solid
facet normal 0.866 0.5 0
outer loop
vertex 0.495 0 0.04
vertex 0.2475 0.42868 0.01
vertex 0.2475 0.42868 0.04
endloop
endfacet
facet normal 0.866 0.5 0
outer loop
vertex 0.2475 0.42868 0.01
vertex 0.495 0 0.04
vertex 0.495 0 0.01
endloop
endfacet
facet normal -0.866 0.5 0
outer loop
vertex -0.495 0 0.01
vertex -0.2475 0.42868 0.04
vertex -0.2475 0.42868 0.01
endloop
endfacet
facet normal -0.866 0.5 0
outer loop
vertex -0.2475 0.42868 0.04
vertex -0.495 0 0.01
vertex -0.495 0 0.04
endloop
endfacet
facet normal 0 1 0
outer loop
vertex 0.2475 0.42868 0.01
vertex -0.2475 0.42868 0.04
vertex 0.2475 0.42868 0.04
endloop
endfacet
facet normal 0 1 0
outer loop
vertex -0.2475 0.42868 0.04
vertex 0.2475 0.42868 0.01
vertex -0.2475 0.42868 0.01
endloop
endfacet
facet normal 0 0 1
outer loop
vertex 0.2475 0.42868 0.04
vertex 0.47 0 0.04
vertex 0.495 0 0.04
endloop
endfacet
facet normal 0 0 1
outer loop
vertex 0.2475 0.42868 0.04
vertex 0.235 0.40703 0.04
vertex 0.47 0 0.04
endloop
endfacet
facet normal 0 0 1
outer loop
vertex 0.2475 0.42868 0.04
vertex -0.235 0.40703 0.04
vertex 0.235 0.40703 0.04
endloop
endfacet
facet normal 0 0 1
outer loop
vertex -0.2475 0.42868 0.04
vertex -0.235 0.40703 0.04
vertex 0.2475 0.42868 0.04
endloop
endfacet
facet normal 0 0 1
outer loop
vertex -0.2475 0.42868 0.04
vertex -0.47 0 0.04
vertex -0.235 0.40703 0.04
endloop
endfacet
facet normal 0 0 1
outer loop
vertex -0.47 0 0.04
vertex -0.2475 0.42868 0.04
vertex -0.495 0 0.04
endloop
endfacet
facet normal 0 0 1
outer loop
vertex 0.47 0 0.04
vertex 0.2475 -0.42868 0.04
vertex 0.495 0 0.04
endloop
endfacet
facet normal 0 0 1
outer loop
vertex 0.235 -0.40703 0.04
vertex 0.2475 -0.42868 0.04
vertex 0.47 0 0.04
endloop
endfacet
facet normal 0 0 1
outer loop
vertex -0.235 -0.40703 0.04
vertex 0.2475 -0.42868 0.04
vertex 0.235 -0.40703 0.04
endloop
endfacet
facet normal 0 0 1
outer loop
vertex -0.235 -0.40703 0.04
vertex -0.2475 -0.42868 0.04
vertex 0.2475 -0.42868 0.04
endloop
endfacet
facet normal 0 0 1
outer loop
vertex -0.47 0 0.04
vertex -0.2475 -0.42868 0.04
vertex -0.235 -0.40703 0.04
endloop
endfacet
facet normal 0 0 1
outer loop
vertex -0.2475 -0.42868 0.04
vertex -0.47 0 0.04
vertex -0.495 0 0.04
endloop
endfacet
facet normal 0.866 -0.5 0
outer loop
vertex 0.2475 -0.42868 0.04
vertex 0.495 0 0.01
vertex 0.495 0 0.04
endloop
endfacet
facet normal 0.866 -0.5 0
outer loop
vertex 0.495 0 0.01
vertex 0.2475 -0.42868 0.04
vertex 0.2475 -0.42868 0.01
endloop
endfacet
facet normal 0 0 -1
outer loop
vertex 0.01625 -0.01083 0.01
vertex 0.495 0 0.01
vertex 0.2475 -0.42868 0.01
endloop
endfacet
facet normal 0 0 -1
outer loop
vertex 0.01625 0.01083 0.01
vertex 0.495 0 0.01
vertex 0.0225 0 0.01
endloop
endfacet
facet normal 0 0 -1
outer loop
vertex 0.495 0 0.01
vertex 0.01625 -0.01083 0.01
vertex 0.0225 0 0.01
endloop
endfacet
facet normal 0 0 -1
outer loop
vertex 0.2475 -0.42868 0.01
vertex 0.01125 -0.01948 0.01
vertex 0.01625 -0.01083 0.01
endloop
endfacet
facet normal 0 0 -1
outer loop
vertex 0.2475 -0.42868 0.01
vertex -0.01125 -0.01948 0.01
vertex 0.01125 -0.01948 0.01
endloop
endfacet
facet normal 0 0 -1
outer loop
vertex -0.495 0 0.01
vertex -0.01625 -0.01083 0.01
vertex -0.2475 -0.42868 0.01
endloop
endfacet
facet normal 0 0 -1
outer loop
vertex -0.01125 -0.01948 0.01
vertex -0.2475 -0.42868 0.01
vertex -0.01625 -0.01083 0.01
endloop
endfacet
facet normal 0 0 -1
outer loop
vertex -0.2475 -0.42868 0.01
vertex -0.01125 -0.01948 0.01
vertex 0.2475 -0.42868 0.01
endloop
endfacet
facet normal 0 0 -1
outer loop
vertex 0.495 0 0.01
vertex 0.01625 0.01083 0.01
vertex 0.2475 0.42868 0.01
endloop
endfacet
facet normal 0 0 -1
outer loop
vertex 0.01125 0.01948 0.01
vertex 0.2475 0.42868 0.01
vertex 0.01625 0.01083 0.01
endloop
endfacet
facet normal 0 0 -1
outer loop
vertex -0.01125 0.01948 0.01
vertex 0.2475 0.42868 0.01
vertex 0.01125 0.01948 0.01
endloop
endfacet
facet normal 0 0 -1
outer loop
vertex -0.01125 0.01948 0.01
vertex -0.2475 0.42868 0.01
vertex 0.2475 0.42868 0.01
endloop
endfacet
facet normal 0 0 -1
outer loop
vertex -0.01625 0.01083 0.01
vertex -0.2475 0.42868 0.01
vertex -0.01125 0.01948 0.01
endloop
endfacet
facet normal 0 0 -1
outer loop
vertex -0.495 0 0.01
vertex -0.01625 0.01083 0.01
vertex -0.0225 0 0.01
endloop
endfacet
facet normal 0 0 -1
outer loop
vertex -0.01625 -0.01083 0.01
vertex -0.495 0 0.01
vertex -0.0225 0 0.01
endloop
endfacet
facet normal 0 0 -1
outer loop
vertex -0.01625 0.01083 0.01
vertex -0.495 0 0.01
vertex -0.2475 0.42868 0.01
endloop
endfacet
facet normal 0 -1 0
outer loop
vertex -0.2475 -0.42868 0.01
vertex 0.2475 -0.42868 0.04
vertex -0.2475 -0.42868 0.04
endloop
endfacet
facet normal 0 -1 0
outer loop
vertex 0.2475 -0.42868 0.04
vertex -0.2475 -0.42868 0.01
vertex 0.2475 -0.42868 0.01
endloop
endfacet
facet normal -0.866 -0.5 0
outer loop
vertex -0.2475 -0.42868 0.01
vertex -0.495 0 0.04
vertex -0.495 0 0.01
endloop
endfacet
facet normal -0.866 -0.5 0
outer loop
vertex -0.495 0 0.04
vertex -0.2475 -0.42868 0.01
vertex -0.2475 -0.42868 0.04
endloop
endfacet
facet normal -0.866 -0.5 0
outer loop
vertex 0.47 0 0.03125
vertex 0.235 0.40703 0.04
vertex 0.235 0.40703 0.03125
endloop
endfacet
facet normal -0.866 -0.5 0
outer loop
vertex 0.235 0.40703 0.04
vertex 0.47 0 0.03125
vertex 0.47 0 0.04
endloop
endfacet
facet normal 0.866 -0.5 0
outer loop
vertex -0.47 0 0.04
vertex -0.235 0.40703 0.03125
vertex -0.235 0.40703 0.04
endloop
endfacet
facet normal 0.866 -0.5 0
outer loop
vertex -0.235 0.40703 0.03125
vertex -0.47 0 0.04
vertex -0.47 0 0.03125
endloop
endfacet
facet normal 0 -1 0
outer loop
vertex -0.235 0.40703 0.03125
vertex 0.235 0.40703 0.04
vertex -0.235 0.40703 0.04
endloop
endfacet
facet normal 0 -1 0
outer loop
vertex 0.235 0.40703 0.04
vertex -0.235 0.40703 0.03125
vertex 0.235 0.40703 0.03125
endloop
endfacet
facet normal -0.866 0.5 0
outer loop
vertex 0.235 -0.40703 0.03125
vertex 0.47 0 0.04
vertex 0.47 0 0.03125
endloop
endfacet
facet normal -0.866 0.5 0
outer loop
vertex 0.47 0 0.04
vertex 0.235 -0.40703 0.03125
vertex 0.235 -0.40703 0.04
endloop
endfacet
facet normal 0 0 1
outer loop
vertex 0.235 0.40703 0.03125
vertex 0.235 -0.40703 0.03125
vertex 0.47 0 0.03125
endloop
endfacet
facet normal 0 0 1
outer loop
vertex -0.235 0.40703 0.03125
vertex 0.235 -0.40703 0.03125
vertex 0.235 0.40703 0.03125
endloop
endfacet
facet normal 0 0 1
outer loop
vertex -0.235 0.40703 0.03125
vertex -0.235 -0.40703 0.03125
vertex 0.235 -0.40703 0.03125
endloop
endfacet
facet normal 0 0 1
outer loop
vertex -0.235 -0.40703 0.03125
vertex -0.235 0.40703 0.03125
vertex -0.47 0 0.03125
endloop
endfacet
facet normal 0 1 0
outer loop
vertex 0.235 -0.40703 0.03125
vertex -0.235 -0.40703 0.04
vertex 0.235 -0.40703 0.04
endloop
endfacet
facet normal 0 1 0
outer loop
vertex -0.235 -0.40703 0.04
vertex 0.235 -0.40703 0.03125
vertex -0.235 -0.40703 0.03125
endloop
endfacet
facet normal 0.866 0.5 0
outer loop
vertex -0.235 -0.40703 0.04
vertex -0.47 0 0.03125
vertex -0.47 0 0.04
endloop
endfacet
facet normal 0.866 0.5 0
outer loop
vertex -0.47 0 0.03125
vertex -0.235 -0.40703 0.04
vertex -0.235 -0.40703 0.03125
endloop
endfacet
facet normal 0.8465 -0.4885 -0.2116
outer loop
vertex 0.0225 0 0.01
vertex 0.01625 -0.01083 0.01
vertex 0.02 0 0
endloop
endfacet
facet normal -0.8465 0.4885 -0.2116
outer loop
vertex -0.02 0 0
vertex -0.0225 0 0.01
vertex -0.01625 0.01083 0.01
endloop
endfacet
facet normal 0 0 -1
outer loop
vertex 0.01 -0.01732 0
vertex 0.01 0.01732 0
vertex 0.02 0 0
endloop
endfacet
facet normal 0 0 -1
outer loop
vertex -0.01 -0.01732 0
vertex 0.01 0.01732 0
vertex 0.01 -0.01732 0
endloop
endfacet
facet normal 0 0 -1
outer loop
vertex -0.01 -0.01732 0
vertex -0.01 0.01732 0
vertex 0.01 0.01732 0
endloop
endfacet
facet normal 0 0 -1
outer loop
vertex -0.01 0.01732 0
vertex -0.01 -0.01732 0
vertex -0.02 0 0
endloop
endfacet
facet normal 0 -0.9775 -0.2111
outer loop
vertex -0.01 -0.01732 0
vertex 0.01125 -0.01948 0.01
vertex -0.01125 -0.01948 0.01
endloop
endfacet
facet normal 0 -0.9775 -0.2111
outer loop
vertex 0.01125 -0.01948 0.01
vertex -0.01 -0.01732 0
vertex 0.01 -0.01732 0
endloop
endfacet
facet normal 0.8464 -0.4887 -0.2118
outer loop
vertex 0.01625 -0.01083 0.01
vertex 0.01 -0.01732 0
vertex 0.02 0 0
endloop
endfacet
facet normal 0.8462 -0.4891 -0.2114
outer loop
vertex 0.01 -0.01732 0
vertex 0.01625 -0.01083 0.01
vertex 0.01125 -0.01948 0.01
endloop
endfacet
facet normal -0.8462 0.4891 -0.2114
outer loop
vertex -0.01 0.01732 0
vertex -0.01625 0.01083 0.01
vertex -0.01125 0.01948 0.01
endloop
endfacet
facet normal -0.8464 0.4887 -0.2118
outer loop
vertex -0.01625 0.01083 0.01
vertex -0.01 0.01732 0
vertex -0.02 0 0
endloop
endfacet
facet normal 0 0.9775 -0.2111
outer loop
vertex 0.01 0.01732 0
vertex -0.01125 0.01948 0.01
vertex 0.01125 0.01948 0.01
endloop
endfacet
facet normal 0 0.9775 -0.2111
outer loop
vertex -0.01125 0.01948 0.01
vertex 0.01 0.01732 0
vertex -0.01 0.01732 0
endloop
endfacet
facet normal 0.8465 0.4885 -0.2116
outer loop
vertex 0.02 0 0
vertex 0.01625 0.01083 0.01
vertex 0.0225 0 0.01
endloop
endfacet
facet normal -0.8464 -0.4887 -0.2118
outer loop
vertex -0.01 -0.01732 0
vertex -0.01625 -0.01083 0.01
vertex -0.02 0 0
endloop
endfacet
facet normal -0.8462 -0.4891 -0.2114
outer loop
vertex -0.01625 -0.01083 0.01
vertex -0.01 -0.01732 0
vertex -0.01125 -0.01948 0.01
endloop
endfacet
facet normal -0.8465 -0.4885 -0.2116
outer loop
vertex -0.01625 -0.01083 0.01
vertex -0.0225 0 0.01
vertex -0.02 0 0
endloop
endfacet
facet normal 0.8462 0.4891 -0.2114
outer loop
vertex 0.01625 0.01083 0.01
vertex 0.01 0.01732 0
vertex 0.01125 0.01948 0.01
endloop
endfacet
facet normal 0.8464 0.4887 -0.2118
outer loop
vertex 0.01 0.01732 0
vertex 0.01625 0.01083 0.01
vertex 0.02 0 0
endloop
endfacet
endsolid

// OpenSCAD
module hexagon_mirror(r_hex, h_hex, th){    
    r = r_hex*0.99;
    lh = r_hex - r;
    h = h_hex - 4*lh;
    
  difference(){
    cylinder(h = h, r1 = r, r2 = r, center = true, $fn=6);
    translate([0,0,h/2])
        cylinder(h = h-th/2, r1 = r-th, r2 = r-th, center = true, $fn=6);
  }
    translate([0,0,-h/2])
        rotate([180,0,0])
            cylinder(h = 4*lh, r1 = 5*lh, r2 = 4*lh, center = true, $fn=6);
}

h_hex=0.05;
th=0.025;
translate([0,0,h_hex/2])
    hexagon_mirror(r_hex=0.5, h_hex=h_hex, th=0.025);
